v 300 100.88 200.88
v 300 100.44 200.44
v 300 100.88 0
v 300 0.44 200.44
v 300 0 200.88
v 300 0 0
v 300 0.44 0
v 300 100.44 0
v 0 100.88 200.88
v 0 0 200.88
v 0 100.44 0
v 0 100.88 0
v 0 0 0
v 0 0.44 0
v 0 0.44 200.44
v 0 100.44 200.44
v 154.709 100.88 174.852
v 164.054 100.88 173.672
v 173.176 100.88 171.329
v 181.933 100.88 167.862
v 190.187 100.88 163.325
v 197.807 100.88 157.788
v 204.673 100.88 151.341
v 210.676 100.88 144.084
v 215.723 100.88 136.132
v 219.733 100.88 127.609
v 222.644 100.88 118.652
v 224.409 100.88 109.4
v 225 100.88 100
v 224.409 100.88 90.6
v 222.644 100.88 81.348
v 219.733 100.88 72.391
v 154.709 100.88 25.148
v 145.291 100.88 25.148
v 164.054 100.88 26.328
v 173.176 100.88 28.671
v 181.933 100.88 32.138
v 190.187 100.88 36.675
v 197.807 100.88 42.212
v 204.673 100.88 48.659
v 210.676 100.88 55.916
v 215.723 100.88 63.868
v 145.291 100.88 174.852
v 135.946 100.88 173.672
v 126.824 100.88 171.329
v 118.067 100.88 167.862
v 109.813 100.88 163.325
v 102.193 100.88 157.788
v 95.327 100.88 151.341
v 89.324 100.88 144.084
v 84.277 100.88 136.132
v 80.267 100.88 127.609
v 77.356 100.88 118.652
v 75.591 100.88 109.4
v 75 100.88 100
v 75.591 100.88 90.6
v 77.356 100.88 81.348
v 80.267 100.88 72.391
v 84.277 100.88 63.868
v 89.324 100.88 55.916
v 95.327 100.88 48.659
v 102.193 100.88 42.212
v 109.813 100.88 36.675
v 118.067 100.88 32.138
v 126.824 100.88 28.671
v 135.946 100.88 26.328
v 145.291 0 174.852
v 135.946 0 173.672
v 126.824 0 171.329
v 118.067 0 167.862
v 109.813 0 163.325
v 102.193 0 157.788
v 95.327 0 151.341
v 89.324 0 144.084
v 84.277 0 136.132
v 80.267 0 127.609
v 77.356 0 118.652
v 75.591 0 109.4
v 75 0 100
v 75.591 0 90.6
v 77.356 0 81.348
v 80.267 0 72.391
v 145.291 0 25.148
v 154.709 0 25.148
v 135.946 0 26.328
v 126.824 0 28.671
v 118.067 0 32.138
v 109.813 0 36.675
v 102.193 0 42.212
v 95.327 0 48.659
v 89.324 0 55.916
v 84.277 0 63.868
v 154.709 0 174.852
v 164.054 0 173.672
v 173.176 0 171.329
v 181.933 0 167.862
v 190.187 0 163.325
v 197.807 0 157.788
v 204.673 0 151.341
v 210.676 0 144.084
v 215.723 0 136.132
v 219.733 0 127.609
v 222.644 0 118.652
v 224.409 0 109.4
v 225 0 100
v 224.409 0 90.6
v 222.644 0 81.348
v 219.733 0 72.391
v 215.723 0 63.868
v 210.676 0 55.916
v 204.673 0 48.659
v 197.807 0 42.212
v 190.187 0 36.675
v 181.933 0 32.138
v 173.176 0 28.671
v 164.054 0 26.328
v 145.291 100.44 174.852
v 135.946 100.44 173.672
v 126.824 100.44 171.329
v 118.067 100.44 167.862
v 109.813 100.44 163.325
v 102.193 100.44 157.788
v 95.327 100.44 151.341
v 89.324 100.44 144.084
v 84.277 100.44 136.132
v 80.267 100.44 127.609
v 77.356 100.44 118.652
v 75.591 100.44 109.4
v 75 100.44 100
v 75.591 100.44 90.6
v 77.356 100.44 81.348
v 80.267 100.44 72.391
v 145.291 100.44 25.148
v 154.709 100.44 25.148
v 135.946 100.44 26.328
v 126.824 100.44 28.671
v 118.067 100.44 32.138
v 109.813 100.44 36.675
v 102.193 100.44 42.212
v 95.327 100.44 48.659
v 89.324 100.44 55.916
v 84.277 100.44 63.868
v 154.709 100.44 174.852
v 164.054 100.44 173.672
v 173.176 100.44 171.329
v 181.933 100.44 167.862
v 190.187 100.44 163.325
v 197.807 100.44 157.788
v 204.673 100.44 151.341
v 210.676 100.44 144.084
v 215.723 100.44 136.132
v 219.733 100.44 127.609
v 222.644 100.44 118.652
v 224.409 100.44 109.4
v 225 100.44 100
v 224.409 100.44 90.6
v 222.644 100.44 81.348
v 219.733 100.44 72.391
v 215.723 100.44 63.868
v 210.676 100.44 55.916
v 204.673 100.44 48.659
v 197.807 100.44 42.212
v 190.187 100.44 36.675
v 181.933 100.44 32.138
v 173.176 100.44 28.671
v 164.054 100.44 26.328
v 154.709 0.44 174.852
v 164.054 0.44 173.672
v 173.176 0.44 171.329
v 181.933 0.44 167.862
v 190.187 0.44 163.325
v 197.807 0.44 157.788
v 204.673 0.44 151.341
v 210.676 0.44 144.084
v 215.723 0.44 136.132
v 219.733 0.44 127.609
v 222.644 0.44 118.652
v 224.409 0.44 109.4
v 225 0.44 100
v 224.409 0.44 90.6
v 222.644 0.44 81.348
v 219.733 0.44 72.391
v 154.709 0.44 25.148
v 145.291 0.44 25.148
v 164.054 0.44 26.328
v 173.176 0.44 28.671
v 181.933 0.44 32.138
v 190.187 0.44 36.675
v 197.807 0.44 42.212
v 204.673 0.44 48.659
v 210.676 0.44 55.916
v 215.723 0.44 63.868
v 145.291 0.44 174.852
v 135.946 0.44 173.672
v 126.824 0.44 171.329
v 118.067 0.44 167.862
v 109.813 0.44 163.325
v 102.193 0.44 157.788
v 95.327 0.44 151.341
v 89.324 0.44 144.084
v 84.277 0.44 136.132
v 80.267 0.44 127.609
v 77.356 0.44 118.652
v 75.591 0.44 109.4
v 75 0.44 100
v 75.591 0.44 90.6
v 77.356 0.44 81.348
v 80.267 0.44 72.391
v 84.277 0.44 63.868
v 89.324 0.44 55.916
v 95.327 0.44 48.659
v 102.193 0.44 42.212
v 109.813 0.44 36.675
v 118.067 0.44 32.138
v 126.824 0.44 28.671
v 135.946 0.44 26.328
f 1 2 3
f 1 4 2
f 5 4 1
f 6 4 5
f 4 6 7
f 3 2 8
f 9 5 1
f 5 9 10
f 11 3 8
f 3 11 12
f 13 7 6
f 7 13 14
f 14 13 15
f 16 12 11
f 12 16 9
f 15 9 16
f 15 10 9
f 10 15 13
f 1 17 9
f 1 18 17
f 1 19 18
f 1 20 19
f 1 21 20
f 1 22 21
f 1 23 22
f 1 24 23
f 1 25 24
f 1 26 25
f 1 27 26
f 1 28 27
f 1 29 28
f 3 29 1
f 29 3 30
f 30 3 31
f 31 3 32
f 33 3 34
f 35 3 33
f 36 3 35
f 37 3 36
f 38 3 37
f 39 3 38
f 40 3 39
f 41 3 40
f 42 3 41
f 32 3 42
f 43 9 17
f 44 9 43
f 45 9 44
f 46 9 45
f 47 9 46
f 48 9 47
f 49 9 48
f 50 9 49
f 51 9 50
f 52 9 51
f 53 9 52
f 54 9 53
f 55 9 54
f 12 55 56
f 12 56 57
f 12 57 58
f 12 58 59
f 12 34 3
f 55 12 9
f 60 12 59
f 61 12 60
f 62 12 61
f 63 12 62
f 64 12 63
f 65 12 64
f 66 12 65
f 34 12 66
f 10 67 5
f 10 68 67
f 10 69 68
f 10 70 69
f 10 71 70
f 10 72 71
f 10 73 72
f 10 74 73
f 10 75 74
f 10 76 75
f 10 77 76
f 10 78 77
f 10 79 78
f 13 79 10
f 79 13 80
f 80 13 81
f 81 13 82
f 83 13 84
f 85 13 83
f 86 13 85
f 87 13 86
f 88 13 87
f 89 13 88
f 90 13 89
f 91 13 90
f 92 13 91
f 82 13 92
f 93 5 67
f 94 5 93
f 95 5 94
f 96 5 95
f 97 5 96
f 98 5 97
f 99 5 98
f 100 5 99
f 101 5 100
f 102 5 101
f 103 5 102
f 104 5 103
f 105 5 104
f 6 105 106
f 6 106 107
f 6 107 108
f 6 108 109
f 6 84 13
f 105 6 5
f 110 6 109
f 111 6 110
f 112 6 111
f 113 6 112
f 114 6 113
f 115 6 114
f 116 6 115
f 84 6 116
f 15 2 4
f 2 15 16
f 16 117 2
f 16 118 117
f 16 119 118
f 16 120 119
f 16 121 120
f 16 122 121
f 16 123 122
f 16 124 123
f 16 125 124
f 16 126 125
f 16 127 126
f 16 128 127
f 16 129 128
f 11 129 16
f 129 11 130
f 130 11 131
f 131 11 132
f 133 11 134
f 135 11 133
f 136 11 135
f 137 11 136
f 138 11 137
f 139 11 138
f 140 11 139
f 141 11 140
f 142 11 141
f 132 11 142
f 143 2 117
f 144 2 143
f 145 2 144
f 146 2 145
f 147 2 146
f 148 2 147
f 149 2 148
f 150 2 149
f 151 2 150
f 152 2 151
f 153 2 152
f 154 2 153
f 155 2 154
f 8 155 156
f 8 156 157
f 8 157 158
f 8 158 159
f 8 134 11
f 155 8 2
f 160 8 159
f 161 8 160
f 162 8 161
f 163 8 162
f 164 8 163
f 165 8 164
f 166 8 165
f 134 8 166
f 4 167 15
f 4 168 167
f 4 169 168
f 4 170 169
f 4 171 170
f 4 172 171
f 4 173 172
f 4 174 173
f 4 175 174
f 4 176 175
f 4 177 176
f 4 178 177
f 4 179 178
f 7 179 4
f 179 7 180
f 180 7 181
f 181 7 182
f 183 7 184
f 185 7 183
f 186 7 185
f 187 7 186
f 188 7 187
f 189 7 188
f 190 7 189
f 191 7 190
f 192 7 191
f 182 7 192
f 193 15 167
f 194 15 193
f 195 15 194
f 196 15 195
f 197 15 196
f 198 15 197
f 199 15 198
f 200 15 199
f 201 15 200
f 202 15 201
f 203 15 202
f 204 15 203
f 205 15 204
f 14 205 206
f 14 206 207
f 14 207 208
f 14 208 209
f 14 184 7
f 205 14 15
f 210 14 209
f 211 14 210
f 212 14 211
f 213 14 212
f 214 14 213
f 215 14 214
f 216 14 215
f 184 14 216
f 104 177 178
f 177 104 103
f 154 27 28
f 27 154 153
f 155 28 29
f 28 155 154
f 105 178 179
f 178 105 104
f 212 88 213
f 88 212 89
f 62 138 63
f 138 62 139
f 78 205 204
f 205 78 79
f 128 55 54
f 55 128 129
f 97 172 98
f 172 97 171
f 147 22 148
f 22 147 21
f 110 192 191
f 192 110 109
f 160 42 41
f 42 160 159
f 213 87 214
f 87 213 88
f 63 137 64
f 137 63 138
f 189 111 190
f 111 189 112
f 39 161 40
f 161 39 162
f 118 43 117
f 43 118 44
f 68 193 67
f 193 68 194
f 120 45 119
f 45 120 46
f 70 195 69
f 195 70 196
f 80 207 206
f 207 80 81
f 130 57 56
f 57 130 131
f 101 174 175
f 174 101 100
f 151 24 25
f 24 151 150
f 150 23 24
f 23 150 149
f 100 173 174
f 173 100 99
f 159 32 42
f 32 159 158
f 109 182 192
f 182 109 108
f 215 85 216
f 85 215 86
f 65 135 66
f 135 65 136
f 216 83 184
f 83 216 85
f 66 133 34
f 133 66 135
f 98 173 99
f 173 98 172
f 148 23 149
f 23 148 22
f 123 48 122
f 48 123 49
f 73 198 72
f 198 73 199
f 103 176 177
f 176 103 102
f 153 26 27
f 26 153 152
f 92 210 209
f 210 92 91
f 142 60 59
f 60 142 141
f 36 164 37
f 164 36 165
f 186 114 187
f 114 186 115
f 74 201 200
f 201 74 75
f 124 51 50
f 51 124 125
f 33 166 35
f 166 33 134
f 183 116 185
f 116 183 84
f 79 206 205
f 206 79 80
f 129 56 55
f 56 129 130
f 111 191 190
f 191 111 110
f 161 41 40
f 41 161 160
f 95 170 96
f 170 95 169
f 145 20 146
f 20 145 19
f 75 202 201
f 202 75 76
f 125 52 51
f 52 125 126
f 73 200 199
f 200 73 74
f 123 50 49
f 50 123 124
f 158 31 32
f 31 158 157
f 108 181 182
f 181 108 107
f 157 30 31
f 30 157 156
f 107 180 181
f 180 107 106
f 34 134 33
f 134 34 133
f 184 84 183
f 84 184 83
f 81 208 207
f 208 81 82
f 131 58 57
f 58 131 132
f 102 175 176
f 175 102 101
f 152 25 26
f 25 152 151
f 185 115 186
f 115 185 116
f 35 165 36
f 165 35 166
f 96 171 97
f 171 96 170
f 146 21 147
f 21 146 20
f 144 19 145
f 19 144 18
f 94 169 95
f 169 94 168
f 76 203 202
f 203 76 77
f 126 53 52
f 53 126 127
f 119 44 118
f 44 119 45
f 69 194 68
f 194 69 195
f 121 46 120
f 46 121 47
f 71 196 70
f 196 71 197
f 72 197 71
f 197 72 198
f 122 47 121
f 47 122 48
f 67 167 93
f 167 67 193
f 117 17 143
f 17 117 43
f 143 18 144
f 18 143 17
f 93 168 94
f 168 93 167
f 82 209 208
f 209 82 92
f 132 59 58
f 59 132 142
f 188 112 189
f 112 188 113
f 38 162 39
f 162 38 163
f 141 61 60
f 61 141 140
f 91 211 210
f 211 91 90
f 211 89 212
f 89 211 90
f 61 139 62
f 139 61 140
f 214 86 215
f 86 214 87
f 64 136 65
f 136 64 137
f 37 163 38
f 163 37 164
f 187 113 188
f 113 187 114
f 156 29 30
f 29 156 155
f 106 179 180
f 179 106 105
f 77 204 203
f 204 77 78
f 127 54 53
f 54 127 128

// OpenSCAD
$fn=50;

width = 100.0;
height = 200.0;
depth = 300.0;
line = 0.44;

difference() {

difference() {
     cube([depth, width+2*line, height+2*line], false);
     translate([-line, line, -line]) {
          cube([depth+2*line, width, height+2*line], false);
     }
}

translate([depth/2, width/2+line, 100]) {
rotate(a=90, v=[1,0,0]) {
     cylinder(h=width+2*line, d=depth/2, center=true);
}
}

}
